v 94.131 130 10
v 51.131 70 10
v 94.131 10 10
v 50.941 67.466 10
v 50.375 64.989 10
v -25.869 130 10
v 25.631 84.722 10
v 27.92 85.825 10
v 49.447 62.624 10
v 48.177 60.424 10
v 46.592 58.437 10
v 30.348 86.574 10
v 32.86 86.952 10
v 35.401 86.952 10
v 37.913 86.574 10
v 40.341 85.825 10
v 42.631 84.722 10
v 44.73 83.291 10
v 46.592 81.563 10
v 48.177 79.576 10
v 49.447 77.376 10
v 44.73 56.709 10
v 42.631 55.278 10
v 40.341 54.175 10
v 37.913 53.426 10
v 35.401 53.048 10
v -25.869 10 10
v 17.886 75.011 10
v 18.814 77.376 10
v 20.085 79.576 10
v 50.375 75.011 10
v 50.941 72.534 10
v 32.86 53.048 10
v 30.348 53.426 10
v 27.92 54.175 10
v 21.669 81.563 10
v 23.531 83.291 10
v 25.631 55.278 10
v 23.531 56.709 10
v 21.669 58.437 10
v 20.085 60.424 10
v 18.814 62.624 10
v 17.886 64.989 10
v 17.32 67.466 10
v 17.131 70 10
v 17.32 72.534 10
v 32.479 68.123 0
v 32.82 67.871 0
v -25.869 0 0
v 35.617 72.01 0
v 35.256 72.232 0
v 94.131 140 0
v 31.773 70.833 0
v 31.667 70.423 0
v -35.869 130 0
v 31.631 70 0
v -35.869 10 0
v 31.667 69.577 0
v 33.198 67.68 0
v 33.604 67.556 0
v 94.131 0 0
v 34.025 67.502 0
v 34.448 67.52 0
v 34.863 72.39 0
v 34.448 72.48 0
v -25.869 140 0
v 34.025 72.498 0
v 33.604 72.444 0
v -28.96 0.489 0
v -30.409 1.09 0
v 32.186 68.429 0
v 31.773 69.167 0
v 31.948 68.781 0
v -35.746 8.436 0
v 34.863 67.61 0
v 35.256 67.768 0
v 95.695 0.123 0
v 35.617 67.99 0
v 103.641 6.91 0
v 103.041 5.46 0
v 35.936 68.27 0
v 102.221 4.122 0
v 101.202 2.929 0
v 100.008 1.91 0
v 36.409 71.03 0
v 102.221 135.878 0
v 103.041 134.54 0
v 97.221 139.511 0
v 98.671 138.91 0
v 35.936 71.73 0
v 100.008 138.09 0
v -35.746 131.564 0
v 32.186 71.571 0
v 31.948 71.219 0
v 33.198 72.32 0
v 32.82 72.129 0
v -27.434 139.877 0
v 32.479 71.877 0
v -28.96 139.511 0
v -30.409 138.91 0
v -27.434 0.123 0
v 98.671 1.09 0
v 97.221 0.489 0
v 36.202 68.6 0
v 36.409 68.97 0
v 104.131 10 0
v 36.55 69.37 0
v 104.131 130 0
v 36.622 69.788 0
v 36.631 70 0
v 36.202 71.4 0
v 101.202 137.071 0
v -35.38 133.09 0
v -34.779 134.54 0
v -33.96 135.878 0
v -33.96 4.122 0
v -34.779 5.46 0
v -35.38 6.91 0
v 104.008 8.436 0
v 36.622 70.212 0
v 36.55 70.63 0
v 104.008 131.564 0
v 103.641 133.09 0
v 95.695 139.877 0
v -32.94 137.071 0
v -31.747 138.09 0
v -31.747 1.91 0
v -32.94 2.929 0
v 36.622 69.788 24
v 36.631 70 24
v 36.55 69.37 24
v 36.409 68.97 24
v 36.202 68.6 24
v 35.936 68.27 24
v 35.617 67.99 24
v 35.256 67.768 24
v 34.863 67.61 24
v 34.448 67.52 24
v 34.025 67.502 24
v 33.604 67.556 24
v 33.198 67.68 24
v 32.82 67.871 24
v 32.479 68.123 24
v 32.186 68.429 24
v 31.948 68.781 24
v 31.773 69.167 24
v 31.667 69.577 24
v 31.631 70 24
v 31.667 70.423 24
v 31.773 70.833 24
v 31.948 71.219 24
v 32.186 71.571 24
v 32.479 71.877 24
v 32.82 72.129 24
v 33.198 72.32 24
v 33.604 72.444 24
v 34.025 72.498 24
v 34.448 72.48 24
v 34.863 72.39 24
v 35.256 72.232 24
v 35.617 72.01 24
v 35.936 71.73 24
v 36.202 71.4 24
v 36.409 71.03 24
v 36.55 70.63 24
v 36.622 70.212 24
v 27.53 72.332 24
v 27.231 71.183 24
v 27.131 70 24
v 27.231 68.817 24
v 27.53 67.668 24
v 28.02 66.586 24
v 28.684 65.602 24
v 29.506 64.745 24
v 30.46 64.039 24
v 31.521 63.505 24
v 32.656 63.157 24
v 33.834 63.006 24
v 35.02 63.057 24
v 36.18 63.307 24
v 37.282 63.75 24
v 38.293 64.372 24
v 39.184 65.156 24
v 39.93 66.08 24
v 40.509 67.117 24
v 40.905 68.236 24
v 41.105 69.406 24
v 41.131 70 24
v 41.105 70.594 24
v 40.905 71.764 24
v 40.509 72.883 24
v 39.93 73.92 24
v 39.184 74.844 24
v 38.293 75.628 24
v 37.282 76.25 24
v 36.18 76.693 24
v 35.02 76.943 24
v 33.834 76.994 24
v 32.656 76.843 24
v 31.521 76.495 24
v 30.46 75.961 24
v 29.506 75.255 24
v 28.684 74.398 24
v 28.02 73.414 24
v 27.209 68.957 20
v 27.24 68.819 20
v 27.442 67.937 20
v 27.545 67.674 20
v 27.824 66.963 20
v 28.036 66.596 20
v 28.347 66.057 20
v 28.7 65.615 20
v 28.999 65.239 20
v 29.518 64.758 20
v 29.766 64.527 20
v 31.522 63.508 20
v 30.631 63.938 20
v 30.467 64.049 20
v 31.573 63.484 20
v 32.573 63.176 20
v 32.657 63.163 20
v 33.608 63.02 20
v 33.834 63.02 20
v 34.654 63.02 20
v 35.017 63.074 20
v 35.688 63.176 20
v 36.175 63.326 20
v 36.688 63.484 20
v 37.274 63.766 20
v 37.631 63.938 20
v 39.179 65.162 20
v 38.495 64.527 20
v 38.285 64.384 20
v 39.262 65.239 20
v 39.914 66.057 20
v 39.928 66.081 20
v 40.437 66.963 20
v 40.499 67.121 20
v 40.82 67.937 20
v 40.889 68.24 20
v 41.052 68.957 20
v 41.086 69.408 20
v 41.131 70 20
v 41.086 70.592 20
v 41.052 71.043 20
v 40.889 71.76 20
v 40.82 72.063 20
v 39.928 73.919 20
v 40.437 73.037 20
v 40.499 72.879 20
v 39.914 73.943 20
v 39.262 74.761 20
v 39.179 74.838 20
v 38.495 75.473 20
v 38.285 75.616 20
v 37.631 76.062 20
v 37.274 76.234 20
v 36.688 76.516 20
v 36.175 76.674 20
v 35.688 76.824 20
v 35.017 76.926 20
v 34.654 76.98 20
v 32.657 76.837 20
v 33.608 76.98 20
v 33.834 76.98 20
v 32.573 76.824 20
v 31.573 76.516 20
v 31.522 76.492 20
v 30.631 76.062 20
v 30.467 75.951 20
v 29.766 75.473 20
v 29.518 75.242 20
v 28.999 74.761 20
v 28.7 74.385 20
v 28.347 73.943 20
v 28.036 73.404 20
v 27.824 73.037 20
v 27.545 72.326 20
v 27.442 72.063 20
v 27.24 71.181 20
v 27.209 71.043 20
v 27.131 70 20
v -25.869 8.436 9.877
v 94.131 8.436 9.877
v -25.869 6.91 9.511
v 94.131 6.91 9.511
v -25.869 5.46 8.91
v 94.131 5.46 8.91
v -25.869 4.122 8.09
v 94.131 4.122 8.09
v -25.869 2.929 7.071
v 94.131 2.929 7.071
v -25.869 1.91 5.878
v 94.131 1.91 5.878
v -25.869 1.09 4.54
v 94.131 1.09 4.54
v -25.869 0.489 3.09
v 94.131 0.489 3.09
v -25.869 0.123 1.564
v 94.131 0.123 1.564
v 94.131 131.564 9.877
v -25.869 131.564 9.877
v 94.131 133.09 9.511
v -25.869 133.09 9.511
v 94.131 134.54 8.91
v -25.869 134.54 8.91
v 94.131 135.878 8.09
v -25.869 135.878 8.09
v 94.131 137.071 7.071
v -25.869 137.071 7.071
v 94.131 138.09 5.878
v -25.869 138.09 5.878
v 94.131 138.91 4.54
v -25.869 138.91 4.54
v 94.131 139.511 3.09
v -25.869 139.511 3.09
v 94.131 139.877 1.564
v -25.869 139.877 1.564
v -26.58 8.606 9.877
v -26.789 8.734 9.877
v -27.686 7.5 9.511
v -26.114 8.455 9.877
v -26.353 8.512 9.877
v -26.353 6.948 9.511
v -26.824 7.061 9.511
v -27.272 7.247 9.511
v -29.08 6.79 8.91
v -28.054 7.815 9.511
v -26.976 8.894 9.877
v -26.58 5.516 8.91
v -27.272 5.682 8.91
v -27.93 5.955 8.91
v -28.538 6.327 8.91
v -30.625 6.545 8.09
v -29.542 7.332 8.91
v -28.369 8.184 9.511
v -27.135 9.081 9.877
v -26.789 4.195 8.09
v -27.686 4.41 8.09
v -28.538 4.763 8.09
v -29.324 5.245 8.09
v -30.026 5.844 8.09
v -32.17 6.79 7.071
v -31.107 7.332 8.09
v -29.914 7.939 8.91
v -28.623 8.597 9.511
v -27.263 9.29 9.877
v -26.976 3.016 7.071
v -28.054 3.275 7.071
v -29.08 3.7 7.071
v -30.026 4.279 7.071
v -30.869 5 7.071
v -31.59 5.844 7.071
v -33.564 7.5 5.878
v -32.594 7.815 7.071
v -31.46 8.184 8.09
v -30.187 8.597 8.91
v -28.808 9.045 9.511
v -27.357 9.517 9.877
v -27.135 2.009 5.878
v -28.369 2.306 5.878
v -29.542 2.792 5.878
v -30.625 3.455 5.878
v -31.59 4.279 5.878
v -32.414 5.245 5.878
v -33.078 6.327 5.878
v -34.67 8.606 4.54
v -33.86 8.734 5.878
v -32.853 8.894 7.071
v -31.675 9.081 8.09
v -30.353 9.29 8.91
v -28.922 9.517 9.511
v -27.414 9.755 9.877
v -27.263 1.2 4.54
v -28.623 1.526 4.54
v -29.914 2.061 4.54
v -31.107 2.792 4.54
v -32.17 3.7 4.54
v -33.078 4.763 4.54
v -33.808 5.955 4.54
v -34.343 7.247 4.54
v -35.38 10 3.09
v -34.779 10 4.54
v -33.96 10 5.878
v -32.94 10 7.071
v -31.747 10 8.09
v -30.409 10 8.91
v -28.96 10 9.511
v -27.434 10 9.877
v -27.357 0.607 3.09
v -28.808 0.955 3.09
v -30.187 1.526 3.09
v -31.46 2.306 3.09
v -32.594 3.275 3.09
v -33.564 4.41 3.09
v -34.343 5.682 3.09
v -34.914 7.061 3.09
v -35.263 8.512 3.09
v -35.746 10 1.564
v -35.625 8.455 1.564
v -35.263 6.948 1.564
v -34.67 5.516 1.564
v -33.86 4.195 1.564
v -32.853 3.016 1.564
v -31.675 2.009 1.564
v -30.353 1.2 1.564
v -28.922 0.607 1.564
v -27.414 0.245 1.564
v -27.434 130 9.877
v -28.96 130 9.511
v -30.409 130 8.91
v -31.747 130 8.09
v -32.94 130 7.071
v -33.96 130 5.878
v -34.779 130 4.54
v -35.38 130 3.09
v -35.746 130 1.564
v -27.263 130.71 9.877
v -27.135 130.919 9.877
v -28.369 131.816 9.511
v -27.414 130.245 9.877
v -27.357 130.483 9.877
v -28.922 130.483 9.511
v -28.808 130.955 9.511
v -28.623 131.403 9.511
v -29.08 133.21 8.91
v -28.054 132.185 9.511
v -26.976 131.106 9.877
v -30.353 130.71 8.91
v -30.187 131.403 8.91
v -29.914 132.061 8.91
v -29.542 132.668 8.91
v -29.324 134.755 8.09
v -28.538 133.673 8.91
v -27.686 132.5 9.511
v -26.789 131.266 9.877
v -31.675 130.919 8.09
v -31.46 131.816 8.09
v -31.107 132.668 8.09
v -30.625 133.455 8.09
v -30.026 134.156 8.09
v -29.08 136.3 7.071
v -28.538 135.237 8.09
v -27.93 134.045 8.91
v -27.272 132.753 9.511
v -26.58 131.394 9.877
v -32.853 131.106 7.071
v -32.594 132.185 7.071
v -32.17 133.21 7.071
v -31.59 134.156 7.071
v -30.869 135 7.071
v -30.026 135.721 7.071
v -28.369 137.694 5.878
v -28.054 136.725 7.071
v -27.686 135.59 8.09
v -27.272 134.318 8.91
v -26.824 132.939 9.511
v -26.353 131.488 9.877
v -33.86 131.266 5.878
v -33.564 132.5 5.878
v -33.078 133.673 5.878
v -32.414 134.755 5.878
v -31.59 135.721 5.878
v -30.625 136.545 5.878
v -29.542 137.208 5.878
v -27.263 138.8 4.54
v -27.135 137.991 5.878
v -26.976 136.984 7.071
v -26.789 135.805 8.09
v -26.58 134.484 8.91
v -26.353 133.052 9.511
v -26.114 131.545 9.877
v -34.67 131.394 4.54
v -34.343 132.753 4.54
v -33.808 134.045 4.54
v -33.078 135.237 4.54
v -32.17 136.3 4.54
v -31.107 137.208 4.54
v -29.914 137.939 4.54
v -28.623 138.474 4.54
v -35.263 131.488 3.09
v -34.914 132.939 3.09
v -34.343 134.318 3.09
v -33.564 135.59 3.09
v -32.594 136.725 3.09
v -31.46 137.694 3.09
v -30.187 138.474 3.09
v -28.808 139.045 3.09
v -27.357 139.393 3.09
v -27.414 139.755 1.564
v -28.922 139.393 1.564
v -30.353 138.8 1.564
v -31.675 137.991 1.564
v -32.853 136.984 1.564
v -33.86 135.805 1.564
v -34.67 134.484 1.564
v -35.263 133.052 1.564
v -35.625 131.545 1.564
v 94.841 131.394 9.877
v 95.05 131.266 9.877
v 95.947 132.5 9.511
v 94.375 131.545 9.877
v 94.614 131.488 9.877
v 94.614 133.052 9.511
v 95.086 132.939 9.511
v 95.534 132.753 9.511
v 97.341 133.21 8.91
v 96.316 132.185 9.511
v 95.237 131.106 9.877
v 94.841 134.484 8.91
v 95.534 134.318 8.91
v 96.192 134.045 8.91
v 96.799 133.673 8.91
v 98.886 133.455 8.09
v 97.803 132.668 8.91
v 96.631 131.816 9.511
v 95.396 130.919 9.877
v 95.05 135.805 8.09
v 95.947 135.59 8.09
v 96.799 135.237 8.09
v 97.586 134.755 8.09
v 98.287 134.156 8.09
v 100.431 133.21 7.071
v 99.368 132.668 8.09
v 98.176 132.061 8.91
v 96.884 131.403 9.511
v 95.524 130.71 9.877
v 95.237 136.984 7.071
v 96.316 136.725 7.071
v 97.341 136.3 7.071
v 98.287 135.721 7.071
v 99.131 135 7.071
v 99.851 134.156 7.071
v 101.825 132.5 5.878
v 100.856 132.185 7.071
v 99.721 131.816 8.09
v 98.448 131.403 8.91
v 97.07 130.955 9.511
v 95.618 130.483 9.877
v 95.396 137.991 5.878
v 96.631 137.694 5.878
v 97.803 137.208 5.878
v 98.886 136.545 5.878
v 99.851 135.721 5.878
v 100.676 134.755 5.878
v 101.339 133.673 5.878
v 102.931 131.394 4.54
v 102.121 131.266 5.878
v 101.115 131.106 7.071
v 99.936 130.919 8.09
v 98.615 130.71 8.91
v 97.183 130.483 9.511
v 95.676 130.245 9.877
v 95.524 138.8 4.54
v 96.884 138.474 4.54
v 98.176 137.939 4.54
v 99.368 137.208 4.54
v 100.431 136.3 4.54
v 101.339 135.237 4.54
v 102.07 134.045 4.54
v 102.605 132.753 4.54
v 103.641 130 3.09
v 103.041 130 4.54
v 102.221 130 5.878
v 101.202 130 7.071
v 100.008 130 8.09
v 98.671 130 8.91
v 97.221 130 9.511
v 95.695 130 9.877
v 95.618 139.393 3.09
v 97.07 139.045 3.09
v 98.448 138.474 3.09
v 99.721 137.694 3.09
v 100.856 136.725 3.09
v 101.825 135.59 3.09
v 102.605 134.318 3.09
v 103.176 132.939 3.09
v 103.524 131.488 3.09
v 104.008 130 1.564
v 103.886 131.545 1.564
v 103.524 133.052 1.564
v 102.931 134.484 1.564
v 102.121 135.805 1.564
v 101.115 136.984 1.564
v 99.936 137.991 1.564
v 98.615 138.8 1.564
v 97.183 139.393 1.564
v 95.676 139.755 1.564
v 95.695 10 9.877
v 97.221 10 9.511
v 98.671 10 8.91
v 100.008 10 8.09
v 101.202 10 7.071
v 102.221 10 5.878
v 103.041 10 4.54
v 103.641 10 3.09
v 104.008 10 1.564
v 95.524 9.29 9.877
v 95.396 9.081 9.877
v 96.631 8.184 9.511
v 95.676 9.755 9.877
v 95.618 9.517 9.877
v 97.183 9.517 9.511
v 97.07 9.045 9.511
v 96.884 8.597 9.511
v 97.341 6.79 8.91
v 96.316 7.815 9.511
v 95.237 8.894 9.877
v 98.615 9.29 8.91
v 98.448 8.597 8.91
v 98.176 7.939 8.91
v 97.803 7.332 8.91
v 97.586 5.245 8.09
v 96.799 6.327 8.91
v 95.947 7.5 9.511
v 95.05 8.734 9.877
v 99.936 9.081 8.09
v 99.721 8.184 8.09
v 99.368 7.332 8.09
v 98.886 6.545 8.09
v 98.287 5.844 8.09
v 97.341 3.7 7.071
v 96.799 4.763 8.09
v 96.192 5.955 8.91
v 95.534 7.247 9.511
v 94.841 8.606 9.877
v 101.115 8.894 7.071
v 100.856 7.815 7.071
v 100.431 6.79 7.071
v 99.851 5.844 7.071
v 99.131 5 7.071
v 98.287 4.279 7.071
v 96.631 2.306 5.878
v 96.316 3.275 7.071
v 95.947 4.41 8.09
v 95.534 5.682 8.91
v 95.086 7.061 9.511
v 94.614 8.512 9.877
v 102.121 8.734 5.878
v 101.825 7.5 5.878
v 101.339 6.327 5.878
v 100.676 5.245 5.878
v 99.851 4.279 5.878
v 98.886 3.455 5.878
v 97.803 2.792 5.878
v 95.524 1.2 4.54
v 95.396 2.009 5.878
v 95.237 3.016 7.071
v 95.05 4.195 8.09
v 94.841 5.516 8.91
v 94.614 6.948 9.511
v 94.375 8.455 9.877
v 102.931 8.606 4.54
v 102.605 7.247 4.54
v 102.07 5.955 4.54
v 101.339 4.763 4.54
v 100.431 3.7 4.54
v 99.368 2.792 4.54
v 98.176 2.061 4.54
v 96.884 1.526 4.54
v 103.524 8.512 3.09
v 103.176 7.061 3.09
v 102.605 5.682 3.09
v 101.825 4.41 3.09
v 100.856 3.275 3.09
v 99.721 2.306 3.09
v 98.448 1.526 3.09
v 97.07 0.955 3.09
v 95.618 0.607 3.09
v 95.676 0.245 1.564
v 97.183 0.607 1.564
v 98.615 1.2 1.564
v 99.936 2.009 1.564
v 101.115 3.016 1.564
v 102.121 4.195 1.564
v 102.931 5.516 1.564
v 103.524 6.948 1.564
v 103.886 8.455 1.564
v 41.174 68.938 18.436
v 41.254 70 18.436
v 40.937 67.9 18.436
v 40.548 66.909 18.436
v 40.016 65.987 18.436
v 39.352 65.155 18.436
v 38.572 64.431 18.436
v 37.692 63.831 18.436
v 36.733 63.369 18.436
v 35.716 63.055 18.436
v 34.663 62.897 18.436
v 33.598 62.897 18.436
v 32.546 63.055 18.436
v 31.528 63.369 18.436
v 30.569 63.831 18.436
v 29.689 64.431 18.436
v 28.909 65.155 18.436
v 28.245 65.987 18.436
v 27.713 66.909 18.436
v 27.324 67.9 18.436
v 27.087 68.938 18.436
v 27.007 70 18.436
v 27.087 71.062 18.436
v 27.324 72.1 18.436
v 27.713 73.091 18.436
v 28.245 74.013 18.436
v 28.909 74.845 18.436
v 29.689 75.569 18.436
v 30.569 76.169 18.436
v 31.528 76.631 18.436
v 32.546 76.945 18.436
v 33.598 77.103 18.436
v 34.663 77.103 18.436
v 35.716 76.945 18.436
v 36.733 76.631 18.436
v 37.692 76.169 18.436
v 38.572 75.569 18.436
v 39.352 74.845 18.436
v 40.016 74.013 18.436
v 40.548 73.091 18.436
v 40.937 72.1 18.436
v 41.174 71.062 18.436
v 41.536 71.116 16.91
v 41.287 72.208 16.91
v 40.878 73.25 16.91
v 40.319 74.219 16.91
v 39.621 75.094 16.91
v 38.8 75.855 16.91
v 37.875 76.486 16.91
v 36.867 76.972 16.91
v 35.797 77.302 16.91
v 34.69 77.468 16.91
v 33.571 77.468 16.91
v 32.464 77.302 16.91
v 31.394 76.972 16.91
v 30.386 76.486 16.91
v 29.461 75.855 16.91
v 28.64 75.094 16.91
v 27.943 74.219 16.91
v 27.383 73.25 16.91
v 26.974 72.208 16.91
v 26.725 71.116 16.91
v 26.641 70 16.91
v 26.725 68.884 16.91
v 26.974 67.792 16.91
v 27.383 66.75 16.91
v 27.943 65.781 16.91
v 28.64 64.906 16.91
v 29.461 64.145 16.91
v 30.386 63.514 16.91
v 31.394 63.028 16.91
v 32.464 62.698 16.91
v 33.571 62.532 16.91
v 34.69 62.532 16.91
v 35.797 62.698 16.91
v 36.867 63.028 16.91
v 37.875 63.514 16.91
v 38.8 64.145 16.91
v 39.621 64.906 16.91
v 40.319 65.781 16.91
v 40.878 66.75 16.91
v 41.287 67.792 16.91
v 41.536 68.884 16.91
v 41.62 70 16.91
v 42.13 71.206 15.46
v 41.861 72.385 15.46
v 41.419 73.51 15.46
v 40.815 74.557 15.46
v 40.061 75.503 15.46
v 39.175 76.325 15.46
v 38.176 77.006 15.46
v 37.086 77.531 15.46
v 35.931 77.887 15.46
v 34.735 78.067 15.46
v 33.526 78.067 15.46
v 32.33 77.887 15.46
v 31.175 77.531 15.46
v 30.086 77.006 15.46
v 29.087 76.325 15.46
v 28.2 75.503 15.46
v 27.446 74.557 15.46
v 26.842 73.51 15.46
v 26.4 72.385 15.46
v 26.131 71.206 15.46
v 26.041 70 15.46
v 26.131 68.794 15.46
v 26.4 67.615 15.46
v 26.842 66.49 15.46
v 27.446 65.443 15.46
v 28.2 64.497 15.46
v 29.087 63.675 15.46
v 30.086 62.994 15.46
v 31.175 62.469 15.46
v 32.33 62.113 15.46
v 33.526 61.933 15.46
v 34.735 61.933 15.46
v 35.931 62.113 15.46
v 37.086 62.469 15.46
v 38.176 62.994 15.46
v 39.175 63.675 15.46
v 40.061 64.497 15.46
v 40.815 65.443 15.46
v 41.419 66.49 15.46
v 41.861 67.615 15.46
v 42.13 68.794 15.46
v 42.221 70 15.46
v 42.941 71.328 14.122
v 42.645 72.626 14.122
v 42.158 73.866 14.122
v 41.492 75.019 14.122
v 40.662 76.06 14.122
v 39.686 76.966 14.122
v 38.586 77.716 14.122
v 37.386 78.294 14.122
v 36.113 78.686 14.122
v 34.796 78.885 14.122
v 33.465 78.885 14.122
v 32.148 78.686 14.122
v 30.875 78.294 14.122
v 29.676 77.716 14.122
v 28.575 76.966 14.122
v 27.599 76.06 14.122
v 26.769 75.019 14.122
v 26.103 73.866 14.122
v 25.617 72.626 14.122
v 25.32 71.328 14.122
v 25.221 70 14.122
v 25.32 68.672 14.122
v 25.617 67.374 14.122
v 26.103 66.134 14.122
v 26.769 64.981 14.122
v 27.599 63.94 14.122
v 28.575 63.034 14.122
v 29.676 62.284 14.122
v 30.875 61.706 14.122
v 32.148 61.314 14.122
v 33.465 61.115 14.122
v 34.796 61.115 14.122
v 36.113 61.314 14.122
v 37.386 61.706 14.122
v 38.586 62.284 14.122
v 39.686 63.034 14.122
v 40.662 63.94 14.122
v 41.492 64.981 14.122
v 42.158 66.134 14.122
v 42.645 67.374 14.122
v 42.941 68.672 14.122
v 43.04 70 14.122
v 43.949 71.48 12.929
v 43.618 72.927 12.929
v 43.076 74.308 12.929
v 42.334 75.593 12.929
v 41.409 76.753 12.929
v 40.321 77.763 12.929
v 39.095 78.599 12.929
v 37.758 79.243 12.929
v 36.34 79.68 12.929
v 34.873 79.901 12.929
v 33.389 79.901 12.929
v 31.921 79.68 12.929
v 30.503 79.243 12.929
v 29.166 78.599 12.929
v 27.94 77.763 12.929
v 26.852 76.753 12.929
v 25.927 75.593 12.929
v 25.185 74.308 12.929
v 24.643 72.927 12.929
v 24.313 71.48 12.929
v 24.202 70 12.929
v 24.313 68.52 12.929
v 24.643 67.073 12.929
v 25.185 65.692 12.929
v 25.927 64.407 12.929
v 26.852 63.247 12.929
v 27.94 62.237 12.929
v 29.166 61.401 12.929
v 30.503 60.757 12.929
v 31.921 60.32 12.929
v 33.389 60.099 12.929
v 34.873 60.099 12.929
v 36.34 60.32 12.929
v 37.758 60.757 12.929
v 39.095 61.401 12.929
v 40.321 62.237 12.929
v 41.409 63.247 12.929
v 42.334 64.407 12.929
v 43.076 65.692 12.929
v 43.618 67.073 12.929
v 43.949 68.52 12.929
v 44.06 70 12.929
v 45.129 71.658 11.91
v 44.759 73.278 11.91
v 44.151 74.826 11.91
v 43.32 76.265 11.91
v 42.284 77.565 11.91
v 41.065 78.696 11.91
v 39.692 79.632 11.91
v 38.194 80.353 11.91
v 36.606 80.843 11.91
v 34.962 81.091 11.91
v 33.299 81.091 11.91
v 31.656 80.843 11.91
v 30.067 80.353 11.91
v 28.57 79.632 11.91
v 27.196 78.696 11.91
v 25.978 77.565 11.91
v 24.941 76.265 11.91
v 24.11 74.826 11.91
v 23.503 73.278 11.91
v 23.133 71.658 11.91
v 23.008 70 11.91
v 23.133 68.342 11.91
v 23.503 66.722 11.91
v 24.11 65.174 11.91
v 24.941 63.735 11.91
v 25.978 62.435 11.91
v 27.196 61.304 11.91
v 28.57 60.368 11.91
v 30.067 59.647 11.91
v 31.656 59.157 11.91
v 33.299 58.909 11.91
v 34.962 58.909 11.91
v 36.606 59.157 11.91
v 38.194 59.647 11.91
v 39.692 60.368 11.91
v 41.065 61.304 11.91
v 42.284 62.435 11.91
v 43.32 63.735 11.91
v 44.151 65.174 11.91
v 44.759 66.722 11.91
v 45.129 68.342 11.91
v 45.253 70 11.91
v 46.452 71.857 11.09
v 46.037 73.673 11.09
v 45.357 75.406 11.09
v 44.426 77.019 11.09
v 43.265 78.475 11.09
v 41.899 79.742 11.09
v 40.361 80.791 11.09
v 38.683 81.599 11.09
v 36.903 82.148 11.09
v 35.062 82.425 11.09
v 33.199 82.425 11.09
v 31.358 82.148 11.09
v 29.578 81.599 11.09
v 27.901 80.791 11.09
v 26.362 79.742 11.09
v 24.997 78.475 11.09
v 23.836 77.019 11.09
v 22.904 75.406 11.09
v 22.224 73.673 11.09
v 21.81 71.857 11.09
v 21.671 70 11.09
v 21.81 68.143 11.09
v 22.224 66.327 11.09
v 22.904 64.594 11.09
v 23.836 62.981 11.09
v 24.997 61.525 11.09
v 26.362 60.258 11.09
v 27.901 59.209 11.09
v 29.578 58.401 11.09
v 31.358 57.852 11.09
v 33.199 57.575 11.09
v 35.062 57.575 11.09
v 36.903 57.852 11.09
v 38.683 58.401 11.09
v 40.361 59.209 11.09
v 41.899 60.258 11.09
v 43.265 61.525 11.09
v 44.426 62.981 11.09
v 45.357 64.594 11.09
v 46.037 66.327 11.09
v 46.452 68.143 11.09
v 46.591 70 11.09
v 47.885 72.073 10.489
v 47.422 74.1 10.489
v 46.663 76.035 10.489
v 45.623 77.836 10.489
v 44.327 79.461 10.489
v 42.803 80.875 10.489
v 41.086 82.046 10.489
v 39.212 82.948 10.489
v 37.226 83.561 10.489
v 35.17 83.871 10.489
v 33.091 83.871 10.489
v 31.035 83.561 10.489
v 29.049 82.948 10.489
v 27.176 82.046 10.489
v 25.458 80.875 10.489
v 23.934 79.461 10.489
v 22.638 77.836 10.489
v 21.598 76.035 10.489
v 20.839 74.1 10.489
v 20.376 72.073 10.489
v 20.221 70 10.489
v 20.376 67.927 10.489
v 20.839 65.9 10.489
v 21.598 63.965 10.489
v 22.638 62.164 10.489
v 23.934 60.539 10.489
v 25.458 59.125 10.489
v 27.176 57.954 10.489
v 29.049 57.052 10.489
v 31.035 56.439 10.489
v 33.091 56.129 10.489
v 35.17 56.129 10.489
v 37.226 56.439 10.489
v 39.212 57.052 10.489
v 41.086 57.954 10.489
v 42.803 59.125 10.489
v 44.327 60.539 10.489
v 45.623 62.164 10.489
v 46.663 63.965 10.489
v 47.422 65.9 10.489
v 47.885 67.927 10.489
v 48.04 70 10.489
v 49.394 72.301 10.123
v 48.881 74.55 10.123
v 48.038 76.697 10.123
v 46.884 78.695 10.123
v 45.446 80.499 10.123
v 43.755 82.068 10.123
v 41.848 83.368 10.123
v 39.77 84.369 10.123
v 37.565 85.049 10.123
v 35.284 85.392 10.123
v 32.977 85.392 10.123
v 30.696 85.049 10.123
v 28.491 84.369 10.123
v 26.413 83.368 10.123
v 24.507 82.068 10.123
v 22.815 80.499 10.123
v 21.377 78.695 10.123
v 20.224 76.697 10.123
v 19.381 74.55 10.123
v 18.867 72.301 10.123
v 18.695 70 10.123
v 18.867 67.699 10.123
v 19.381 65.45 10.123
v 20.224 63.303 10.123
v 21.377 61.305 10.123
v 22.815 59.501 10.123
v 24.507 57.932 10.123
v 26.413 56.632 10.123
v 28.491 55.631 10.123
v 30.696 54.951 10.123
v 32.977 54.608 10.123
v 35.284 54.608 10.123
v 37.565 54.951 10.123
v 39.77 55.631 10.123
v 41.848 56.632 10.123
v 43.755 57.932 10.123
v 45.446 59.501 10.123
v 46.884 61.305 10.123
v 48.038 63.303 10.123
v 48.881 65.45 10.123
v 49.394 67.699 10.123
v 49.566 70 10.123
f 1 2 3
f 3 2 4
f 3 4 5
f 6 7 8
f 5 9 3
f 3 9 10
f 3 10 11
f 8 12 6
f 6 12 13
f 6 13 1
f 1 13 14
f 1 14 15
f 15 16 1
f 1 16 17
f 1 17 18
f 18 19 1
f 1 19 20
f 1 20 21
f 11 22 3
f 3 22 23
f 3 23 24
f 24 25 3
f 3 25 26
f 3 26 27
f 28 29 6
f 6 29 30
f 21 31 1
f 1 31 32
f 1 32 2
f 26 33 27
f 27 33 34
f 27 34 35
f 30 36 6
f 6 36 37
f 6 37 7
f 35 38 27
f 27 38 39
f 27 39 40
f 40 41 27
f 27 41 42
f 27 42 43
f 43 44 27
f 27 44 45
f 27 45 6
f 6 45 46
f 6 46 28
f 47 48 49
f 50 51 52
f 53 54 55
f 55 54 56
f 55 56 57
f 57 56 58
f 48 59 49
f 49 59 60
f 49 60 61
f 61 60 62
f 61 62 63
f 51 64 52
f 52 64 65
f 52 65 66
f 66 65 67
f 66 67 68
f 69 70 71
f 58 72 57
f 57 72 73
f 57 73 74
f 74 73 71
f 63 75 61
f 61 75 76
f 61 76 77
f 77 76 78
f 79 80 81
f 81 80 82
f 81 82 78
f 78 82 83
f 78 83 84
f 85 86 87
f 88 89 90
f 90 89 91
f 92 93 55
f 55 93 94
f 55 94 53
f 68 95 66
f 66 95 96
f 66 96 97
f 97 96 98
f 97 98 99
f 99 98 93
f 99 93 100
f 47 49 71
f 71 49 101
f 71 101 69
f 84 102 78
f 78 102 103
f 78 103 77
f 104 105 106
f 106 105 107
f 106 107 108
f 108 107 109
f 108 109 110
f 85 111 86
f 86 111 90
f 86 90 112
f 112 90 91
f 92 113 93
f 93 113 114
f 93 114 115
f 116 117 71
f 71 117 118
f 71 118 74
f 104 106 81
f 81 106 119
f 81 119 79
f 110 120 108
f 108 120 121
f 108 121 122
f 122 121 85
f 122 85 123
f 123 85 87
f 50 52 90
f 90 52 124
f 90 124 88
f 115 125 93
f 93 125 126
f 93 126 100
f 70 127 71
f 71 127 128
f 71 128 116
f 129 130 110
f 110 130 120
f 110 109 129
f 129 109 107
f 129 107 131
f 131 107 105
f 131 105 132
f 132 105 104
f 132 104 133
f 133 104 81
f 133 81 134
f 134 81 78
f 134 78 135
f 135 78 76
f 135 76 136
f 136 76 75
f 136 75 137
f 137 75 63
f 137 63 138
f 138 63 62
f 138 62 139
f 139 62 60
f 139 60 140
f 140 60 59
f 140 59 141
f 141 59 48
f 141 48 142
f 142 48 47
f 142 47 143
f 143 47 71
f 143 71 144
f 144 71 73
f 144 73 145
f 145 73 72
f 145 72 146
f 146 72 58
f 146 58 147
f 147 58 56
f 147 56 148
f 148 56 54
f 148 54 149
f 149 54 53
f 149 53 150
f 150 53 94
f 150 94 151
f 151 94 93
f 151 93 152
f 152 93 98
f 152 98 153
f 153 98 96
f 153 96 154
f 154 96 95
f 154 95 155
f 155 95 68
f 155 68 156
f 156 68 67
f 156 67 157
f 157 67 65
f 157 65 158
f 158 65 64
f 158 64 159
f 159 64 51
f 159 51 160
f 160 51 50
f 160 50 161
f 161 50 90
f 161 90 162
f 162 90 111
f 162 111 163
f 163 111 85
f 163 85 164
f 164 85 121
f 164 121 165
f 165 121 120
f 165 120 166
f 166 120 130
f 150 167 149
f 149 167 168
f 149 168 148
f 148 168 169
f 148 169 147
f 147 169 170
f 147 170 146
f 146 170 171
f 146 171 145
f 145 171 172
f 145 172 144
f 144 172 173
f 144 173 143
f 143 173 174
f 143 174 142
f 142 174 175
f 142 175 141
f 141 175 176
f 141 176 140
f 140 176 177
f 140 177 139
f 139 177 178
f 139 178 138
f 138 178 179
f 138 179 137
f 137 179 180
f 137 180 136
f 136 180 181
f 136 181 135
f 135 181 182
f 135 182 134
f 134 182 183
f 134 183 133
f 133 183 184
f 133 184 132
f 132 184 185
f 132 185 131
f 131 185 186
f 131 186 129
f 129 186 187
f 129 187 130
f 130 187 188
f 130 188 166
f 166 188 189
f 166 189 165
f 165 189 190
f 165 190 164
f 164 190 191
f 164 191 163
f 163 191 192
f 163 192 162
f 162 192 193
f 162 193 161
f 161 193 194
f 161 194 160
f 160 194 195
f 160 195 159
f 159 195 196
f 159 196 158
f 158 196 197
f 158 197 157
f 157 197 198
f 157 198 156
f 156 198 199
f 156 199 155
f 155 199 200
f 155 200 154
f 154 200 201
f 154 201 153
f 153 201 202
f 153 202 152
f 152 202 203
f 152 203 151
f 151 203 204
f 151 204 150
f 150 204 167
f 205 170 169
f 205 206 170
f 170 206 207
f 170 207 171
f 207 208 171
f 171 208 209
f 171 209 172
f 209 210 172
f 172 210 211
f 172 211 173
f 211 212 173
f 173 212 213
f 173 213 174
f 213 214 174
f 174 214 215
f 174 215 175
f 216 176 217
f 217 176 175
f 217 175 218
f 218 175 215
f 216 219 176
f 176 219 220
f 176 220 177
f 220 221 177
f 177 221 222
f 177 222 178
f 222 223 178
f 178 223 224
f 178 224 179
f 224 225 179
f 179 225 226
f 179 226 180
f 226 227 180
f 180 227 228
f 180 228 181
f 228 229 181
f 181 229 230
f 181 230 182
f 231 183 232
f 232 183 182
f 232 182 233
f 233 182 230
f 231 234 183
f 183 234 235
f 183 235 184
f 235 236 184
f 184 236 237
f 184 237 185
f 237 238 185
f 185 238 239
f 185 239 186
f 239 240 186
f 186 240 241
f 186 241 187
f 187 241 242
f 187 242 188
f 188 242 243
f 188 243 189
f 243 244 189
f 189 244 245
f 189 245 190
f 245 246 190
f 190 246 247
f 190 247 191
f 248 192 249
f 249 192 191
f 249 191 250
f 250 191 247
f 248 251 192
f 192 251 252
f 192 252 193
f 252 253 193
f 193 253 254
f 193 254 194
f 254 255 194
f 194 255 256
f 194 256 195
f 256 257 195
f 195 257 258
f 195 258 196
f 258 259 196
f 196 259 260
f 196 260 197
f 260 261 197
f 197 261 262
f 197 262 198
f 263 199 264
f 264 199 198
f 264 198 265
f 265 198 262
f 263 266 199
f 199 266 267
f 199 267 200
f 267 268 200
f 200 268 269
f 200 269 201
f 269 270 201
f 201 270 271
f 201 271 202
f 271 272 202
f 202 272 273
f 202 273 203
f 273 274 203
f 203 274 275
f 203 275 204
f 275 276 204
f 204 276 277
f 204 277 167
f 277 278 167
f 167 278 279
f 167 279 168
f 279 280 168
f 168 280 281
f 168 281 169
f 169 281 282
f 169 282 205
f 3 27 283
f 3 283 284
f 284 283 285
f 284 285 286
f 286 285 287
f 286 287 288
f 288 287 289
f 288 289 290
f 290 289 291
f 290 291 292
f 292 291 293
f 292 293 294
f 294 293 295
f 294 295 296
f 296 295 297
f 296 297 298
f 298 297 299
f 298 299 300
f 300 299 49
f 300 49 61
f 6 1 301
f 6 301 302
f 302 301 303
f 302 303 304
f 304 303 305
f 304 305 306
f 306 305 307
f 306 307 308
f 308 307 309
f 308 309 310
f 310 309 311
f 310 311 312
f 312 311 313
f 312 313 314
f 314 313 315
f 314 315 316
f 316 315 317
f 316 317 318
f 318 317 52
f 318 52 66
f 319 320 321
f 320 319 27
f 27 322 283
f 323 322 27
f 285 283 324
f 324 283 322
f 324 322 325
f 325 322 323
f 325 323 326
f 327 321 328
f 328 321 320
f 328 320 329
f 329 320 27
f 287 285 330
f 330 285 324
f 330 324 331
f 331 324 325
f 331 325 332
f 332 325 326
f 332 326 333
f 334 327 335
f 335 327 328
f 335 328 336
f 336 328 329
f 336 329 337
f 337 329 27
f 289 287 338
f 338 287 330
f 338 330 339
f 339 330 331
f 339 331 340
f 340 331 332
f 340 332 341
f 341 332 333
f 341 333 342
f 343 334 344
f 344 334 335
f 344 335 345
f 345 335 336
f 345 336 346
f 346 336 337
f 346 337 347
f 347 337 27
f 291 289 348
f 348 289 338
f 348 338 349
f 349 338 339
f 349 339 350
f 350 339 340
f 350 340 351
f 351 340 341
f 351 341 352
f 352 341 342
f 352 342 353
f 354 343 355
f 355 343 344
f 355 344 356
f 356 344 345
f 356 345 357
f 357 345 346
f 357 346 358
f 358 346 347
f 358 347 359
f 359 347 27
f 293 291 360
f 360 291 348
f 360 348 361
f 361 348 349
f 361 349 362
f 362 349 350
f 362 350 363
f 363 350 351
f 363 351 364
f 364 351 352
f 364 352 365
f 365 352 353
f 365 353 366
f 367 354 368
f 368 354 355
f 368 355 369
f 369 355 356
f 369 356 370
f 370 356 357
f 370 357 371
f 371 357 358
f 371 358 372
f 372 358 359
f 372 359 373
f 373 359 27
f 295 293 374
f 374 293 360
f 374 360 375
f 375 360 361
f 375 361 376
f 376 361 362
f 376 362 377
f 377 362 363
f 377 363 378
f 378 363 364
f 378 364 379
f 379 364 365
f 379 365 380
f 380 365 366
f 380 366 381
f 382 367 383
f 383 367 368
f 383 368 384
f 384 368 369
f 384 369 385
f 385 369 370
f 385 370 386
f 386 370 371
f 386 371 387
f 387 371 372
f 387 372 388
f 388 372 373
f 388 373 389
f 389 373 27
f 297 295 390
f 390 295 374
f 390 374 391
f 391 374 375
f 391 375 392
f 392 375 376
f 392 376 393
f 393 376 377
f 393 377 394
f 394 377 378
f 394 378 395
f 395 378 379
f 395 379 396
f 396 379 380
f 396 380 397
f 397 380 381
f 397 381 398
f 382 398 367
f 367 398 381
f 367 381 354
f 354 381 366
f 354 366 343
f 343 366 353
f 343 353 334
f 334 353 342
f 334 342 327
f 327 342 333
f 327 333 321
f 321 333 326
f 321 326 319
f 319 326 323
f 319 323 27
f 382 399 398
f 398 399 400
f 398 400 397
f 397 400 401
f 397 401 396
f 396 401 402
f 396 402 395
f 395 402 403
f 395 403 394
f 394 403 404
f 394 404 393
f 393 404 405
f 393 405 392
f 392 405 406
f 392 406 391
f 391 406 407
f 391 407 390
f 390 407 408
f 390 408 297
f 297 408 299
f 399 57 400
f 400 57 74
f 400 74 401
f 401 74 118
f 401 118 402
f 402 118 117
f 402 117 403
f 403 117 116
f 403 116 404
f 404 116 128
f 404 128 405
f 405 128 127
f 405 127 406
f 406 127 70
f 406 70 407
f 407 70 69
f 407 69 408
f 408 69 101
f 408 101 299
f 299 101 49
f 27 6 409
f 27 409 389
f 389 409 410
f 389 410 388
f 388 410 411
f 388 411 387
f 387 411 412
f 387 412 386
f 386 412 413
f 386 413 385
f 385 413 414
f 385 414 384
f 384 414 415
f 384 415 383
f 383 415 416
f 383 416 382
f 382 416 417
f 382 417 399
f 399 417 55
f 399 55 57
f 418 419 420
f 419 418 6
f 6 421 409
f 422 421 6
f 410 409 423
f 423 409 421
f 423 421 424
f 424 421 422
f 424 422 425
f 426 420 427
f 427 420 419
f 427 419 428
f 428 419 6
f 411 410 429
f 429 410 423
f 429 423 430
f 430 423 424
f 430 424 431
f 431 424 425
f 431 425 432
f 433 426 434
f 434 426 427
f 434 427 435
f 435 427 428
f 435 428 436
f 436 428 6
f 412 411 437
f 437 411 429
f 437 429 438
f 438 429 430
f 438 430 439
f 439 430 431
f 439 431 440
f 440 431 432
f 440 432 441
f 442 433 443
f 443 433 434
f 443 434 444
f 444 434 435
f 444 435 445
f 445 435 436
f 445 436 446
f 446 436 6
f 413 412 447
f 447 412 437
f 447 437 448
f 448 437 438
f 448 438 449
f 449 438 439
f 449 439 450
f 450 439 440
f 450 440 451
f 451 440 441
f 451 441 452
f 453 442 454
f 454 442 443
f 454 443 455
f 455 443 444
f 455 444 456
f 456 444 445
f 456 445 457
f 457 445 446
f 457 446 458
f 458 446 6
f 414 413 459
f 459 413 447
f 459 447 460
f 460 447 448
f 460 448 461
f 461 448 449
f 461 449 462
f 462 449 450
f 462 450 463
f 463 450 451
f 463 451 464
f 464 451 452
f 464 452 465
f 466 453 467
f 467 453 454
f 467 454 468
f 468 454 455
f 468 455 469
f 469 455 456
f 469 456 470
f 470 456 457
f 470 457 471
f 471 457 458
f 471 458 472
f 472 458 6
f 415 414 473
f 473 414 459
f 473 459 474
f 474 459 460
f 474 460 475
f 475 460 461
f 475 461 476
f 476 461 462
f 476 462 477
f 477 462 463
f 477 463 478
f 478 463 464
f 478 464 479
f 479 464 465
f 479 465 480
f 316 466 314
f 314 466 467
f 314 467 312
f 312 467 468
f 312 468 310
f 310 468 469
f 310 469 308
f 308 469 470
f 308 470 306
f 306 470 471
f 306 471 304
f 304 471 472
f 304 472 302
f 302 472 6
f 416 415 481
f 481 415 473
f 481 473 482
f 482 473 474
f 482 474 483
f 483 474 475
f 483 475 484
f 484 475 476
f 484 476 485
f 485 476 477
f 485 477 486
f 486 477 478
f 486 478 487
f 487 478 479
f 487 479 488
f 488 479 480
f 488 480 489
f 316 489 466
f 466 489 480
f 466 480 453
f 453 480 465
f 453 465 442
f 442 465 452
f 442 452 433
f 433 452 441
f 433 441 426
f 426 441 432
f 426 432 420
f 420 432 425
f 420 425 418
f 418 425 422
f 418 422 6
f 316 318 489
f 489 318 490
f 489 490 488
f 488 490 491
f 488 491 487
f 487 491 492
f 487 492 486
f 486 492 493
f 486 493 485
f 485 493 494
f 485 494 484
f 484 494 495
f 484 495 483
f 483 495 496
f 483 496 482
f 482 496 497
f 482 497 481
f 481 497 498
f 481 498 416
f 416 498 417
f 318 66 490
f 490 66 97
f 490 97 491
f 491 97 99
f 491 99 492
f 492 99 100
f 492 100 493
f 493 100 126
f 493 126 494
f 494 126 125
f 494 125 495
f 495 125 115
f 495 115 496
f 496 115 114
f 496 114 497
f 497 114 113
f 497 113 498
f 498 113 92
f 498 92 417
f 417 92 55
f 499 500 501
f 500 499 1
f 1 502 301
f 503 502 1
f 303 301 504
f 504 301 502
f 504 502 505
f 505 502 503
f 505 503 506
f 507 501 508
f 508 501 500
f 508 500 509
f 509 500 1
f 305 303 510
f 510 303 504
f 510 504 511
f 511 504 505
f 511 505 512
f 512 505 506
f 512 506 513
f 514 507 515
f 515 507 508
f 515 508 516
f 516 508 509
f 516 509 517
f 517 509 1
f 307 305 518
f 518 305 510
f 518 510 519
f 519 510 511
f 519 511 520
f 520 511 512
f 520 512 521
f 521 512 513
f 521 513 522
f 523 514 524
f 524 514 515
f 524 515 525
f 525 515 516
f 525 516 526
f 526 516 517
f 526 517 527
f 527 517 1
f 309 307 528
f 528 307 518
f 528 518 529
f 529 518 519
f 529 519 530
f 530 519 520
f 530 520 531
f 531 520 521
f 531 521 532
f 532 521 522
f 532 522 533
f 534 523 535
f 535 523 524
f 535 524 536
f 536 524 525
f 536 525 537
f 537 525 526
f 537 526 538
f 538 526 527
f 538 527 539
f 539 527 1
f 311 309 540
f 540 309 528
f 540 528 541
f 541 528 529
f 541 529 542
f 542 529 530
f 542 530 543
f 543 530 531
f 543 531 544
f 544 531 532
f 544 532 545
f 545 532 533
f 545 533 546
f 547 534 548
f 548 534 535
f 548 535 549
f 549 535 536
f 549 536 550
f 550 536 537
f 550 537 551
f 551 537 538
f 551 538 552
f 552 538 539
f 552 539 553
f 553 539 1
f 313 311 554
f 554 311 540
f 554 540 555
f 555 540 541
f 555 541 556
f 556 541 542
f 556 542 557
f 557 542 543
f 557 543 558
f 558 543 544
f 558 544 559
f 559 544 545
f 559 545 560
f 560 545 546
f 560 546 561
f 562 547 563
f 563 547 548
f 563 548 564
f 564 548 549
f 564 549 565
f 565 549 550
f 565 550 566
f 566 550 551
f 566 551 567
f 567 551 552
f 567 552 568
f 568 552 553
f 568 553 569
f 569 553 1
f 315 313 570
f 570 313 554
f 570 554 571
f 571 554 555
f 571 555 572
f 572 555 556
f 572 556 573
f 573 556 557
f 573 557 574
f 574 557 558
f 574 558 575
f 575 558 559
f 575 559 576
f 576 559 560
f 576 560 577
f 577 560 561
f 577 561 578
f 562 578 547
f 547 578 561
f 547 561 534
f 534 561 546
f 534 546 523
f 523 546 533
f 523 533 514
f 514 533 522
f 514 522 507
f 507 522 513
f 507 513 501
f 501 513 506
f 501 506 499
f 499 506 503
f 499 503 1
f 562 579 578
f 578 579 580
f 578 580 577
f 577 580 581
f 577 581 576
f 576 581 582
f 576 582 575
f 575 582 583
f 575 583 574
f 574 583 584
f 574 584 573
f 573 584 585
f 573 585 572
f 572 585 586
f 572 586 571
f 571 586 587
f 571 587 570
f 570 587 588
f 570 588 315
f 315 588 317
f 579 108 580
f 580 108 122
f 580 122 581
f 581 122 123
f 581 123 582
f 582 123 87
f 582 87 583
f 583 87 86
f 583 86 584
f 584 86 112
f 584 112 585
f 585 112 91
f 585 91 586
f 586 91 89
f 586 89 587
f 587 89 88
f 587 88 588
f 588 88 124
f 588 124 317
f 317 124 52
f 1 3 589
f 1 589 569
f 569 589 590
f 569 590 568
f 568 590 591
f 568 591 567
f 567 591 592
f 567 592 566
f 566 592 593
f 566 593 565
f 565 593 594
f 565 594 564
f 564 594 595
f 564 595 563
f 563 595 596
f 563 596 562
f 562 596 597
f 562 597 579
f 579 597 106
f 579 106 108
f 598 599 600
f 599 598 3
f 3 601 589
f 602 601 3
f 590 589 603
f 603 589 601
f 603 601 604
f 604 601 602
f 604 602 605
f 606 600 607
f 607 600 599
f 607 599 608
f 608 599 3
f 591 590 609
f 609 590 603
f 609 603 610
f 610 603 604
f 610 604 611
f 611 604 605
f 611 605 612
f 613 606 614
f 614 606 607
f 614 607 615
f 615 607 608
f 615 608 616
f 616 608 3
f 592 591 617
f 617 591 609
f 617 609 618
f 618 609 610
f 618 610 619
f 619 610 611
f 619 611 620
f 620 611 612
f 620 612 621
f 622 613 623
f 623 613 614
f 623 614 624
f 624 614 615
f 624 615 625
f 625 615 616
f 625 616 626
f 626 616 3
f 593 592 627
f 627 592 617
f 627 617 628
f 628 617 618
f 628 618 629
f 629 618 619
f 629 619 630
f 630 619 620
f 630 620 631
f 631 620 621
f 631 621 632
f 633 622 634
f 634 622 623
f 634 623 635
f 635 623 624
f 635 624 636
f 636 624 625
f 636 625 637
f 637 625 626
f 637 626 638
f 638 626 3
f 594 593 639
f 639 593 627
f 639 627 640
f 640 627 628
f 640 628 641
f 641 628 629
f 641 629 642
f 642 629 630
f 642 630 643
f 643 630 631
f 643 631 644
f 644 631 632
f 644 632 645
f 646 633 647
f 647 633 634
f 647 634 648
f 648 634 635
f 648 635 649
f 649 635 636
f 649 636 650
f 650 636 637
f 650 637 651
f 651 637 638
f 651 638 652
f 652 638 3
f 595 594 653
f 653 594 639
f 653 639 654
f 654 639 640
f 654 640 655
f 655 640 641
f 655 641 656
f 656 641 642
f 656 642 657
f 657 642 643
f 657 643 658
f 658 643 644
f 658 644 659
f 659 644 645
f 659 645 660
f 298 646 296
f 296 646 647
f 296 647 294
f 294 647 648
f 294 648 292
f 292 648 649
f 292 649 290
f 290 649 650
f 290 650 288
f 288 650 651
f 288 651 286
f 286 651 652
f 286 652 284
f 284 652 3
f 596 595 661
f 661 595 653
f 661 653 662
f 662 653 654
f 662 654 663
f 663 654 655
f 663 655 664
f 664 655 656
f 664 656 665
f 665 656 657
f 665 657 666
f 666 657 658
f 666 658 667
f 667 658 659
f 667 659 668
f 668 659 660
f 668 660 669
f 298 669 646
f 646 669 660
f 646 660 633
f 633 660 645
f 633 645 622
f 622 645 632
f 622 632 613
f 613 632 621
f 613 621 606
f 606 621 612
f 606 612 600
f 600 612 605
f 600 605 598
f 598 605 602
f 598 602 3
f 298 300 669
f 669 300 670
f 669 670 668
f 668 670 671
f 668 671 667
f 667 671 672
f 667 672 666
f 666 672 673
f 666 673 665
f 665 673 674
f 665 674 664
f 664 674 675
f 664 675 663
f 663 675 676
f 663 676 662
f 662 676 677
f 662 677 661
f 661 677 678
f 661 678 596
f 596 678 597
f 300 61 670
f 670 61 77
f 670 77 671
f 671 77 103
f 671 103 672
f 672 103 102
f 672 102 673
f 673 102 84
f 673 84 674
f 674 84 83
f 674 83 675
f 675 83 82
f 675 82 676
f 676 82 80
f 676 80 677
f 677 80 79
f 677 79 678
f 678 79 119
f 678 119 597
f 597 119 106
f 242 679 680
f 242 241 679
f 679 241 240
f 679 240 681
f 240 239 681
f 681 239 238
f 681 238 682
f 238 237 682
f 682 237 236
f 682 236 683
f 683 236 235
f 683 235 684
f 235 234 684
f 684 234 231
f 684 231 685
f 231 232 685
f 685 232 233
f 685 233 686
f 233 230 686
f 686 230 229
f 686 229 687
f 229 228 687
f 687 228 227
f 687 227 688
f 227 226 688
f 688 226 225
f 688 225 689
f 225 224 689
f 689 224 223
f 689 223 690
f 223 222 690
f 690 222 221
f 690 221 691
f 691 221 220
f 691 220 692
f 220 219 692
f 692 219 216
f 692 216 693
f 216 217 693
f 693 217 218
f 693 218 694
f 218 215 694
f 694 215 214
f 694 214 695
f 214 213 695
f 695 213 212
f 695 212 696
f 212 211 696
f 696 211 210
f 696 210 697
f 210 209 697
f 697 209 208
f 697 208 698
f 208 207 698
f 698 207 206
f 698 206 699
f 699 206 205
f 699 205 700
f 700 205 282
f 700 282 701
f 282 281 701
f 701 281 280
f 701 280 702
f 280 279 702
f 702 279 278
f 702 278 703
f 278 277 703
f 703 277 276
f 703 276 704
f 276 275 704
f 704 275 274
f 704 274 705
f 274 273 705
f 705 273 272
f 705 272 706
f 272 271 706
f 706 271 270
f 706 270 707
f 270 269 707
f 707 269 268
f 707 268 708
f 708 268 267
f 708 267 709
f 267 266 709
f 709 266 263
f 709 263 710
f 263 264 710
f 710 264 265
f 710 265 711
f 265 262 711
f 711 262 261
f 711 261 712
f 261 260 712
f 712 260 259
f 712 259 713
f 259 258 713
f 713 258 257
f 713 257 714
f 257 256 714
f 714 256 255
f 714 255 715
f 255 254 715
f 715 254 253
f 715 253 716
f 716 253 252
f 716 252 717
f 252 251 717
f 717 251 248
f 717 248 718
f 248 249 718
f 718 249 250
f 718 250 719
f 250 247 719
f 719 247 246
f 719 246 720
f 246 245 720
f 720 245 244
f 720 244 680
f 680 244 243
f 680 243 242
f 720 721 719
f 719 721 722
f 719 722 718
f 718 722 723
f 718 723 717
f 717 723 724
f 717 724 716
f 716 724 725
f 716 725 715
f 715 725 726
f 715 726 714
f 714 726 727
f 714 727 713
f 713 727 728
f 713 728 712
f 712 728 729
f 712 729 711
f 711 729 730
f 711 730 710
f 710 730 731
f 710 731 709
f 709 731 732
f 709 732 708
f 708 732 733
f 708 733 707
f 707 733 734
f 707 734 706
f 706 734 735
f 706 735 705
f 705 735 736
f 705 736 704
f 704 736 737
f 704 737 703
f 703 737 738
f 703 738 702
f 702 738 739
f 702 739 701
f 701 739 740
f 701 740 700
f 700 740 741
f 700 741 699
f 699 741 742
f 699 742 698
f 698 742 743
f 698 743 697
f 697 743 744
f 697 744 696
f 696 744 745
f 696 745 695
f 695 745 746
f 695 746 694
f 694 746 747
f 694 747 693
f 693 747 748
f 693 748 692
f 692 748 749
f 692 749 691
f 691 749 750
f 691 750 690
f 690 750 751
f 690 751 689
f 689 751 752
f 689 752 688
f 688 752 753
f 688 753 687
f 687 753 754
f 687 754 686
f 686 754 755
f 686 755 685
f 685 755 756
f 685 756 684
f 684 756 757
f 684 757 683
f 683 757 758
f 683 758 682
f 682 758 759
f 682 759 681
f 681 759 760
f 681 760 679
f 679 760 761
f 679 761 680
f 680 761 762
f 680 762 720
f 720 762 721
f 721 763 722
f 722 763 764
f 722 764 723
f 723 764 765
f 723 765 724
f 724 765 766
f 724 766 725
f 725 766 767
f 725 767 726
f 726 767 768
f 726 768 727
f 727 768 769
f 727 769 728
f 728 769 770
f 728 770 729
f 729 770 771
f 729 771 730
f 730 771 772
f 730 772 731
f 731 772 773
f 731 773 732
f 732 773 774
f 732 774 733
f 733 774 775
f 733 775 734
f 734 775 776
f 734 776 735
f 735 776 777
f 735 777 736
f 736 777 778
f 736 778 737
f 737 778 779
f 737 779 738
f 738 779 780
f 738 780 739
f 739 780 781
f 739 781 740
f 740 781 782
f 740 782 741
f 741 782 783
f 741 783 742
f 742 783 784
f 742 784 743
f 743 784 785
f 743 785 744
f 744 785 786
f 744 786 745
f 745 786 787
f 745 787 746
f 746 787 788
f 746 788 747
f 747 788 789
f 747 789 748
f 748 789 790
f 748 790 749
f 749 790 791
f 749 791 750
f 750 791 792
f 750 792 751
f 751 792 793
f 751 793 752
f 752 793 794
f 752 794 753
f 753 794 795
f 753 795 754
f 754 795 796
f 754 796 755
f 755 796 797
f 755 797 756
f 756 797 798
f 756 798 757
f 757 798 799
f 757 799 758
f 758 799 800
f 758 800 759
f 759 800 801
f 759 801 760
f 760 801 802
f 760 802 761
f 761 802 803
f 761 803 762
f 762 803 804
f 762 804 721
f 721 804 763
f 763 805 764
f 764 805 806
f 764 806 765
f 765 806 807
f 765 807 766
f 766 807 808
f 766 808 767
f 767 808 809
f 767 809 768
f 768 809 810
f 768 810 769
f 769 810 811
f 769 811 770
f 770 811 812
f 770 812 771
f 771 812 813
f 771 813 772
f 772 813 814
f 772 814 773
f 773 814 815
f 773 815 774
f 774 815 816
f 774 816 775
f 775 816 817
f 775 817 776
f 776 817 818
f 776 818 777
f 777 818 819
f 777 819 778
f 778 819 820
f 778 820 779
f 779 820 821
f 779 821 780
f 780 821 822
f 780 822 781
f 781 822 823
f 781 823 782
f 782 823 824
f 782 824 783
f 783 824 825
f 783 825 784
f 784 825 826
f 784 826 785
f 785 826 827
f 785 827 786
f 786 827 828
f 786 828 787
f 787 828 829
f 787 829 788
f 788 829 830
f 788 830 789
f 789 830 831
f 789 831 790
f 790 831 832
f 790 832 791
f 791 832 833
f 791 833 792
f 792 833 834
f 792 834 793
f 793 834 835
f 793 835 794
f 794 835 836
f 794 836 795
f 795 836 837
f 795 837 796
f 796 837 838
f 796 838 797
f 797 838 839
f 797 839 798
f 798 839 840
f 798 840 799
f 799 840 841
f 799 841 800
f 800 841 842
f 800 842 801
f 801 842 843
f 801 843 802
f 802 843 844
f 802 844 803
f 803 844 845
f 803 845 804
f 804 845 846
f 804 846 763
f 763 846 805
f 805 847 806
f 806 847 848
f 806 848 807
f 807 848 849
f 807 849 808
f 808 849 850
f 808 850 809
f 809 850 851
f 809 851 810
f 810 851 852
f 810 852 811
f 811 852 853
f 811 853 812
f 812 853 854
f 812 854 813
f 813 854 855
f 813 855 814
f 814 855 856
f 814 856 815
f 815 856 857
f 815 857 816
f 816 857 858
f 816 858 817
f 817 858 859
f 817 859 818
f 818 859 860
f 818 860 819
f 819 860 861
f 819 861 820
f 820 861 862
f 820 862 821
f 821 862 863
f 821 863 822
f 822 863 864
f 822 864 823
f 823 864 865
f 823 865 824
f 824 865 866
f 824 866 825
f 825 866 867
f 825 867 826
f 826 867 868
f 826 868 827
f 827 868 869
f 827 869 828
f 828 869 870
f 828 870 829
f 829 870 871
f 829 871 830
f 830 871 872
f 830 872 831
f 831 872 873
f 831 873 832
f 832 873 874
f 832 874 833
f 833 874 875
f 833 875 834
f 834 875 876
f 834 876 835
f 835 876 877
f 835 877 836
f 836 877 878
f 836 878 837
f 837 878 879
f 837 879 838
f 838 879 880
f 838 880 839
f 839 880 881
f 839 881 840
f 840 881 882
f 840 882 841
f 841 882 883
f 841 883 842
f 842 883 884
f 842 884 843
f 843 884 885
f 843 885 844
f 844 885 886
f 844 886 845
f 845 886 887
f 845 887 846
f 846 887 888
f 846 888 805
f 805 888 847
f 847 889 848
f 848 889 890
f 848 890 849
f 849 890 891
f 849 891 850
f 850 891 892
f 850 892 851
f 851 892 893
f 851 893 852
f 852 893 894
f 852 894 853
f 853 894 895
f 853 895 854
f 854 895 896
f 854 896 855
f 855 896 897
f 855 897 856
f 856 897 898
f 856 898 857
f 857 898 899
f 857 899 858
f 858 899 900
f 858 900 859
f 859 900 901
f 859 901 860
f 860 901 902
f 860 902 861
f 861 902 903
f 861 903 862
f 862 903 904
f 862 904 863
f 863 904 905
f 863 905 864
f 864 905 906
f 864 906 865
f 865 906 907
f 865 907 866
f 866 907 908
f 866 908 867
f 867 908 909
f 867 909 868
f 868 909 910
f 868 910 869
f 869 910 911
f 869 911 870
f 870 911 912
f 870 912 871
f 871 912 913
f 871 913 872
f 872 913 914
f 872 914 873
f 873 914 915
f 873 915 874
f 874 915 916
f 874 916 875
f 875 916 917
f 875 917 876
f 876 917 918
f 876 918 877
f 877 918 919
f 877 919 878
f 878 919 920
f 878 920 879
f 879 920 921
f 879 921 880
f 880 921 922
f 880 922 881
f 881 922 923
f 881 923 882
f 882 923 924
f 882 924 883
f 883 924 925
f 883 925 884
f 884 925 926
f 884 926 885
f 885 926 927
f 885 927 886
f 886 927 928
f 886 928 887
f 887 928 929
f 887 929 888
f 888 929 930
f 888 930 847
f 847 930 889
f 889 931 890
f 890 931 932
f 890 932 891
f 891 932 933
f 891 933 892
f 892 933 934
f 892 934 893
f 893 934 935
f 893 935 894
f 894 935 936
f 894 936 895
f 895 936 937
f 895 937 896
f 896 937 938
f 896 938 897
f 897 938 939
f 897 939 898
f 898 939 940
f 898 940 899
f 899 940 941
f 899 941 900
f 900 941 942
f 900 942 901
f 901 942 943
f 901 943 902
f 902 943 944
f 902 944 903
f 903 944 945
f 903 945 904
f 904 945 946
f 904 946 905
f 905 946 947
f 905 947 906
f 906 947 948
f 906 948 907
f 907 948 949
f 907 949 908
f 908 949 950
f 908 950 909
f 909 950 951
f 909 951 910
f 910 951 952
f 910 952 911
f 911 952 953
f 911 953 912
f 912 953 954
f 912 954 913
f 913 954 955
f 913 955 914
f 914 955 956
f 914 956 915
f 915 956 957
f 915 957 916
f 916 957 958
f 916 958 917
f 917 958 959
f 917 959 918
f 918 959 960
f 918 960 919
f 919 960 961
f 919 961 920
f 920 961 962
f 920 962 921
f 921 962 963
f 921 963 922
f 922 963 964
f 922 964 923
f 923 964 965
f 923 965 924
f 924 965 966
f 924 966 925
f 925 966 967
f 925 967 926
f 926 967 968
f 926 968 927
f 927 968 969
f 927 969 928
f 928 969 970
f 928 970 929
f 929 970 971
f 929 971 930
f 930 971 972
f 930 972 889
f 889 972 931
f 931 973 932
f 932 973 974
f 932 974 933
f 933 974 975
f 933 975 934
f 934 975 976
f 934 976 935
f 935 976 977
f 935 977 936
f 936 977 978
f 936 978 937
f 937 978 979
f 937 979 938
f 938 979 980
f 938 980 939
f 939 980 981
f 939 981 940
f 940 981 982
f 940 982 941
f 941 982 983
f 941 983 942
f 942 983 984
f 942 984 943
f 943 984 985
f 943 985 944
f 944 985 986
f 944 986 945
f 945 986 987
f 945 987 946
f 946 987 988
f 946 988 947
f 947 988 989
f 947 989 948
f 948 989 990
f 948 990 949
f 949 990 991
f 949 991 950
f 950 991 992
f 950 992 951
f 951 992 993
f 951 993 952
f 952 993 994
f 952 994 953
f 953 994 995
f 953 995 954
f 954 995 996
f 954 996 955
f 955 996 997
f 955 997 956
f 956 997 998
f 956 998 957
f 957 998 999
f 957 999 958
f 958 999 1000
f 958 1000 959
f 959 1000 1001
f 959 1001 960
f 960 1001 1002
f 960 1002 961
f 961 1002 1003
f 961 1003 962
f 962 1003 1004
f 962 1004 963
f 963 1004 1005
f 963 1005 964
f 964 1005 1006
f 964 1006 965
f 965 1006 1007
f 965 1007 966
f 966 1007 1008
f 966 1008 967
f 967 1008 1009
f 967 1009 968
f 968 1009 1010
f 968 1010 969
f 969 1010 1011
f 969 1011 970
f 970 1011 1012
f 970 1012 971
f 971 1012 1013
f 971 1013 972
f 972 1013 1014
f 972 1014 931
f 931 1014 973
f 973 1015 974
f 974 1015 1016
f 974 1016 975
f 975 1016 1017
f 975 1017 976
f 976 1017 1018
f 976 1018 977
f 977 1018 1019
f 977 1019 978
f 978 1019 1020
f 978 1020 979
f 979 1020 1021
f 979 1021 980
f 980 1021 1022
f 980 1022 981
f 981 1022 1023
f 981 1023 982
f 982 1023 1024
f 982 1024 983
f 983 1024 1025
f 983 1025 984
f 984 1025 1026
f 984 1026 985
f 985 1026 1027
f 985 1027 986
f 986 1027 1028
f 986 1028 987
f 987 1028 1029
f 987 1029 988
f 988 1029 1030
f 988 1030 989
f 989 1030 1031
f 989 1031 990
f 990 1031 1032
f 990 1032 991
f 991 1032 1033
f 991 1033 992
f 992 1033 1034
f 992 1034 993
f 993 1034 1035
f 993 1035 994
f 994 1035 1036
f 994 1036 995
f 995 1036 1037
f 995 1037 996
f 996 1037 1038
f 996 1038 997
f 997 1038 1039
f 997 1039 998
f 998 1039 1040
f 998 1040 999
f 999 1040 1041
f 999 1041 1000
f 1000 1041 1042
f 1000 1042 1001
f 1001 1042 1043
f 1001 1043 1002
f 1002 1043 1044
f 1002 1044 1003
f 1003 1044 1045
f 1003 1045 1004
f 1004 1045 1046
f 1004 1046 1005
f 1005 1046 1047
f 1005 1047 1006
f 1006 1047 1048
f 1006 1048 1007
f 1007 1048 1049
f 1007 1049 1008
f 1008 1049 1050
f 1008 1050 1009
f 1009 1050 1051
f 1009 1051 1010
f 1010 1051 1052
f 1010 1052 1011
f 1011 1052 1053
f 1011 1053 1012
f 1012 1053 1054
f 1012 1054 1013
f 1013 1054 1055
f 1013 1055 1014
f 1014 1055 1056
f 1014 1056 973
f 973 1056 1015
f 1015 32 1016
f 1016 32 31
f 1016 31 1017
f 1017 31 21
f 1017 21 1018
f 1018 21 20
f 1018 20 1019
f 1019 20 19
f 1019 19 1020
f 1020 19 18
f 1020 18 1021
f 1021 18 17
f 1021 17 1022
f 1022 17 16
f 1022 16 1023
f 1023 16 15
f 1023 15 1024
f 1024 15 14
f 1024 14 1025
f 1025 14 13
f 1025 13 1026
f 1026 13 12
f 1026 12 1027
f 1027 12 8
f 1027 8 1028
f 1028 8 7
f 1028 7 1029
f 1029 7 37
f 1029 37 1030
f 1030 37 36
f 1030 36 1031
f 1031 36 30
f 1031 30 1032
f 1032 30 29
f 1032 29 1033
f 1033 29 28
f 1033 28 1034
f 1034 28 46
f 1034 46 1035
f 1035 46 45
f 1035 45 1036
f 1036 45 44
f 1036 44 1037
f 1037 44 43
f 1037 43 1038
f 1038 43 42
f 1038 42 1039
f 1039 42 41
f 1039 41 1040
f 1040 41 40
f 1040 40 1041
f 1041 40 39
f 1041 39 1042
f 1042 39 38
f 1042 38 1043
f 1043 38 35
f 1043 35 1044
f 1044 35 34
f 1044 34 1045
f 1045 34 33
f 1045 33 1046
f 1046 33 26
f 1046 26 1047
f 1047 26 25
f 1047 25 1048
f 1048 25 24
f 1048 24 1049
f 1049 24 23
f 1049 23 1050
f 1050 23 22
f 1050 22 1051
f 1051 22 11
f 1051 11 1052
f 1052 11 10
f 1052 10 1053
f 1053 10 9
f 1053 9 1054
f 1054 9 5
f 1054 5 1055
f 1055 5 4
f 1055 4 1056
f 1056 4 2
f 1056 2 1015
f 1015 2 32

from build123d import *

# Parameters (mm, degrees)
ESBO_O1_W                = 140
ESBO_O1_H                = 140
ESBO_O1_R                = 2.5
RESSALTO_EXTRUS_O1_DEPTH = 10
ESBO_O2_R                = 7
ESBO_O2_R_2              = 2.5
RESSALTO_EXTRUS_O2_DEPTH = 24
FILETE1_R                = 10
FILETE2_R                = 10
FILETE3_R                = 10
FILETE4_R                = 10
FILETE5_R                = 10


with BuildPart() as part:
    # Esboço1 → Ressalto-extrusão1 (new body)
    with BuildSketch(Plane.XY):
        with Locations((34.130618452, 70)):
            Rectangle(ESBO_O1_W, ESBO_O1_H)
        with Locations((34.130618452, 70)):
            Circle(ESBO_O1_R, mode=Mode.SUBTRACT)
    extrude(amount=RESSALTO_EXTRUS_O1_DEPTH)

    # Esboço2 → Ressalto-extrusão2 (add)
    with BuildSketch(Plane.XY):
        with Locations(Location((34.130618452, 70, 0), (0, 0, 180))):
            Circle(ESBO_O2_R)
        with Locations((34.130618452, 70)):
            Circle(ESBO_O2_R_2, mode=Mode.SUBTRACT)
    extrude(amount=RESSALTO_EXTRUS_O2_DEPTH)

    # Filete1
    filete1_edges = [part.edges().sort_by_distance(p)[0] for p in [
        (34.130618452, 0, 10),
    ]]
    fillet(filete1_edges, radius=FILETE1_R - 0.0001)  # a hair under: the kernel refuses the full size

    # Filete2
    filete2_edges = [part.edges().sort_by_distance(p)[0] for p in [
        (34.130618452, 140, 10),
    ]]
    fillet(filete2_edges, radius=FILETE2_R - 0.0001)  # a hair under: the kernel refuses the full size

    # Filete3
    filete3_edges = [part.edges().sort_by_distance(p)[0] for p in [
        (-35.869381548, 2.928902899, 7.071097101),
        (-35.869381548, 70, 10),
        (-35.869381548, 137.071097101, 7.071097101),
    ]]
    fillet(filete3_edges, radius=FILETE3_R - 0.0001)  # a hair under: the kernel refuses the full size

    # Filete4
    filete4_edges = [part.edges().sort_by_distance(p)[0] for p in [
        (104.130618452, 70, 10),
        (104.130618452, 2.928902899, 7.071097101),
        (104.130618452, 137.071097101, 7.071097101),
    ]]
    fillet(filete4_edges, radius=FILETE4_R - 0.0001)  # a hair under: the kernel refuses the full size

    # Filete5
    filete5_edges = [part.edges().sort_by_distance(p)[0] for p in [
        (41.130618452, 70, 10),
    ]]
    fillet(filete5_edges, radius=FILETE5_R)


solid = part.part
